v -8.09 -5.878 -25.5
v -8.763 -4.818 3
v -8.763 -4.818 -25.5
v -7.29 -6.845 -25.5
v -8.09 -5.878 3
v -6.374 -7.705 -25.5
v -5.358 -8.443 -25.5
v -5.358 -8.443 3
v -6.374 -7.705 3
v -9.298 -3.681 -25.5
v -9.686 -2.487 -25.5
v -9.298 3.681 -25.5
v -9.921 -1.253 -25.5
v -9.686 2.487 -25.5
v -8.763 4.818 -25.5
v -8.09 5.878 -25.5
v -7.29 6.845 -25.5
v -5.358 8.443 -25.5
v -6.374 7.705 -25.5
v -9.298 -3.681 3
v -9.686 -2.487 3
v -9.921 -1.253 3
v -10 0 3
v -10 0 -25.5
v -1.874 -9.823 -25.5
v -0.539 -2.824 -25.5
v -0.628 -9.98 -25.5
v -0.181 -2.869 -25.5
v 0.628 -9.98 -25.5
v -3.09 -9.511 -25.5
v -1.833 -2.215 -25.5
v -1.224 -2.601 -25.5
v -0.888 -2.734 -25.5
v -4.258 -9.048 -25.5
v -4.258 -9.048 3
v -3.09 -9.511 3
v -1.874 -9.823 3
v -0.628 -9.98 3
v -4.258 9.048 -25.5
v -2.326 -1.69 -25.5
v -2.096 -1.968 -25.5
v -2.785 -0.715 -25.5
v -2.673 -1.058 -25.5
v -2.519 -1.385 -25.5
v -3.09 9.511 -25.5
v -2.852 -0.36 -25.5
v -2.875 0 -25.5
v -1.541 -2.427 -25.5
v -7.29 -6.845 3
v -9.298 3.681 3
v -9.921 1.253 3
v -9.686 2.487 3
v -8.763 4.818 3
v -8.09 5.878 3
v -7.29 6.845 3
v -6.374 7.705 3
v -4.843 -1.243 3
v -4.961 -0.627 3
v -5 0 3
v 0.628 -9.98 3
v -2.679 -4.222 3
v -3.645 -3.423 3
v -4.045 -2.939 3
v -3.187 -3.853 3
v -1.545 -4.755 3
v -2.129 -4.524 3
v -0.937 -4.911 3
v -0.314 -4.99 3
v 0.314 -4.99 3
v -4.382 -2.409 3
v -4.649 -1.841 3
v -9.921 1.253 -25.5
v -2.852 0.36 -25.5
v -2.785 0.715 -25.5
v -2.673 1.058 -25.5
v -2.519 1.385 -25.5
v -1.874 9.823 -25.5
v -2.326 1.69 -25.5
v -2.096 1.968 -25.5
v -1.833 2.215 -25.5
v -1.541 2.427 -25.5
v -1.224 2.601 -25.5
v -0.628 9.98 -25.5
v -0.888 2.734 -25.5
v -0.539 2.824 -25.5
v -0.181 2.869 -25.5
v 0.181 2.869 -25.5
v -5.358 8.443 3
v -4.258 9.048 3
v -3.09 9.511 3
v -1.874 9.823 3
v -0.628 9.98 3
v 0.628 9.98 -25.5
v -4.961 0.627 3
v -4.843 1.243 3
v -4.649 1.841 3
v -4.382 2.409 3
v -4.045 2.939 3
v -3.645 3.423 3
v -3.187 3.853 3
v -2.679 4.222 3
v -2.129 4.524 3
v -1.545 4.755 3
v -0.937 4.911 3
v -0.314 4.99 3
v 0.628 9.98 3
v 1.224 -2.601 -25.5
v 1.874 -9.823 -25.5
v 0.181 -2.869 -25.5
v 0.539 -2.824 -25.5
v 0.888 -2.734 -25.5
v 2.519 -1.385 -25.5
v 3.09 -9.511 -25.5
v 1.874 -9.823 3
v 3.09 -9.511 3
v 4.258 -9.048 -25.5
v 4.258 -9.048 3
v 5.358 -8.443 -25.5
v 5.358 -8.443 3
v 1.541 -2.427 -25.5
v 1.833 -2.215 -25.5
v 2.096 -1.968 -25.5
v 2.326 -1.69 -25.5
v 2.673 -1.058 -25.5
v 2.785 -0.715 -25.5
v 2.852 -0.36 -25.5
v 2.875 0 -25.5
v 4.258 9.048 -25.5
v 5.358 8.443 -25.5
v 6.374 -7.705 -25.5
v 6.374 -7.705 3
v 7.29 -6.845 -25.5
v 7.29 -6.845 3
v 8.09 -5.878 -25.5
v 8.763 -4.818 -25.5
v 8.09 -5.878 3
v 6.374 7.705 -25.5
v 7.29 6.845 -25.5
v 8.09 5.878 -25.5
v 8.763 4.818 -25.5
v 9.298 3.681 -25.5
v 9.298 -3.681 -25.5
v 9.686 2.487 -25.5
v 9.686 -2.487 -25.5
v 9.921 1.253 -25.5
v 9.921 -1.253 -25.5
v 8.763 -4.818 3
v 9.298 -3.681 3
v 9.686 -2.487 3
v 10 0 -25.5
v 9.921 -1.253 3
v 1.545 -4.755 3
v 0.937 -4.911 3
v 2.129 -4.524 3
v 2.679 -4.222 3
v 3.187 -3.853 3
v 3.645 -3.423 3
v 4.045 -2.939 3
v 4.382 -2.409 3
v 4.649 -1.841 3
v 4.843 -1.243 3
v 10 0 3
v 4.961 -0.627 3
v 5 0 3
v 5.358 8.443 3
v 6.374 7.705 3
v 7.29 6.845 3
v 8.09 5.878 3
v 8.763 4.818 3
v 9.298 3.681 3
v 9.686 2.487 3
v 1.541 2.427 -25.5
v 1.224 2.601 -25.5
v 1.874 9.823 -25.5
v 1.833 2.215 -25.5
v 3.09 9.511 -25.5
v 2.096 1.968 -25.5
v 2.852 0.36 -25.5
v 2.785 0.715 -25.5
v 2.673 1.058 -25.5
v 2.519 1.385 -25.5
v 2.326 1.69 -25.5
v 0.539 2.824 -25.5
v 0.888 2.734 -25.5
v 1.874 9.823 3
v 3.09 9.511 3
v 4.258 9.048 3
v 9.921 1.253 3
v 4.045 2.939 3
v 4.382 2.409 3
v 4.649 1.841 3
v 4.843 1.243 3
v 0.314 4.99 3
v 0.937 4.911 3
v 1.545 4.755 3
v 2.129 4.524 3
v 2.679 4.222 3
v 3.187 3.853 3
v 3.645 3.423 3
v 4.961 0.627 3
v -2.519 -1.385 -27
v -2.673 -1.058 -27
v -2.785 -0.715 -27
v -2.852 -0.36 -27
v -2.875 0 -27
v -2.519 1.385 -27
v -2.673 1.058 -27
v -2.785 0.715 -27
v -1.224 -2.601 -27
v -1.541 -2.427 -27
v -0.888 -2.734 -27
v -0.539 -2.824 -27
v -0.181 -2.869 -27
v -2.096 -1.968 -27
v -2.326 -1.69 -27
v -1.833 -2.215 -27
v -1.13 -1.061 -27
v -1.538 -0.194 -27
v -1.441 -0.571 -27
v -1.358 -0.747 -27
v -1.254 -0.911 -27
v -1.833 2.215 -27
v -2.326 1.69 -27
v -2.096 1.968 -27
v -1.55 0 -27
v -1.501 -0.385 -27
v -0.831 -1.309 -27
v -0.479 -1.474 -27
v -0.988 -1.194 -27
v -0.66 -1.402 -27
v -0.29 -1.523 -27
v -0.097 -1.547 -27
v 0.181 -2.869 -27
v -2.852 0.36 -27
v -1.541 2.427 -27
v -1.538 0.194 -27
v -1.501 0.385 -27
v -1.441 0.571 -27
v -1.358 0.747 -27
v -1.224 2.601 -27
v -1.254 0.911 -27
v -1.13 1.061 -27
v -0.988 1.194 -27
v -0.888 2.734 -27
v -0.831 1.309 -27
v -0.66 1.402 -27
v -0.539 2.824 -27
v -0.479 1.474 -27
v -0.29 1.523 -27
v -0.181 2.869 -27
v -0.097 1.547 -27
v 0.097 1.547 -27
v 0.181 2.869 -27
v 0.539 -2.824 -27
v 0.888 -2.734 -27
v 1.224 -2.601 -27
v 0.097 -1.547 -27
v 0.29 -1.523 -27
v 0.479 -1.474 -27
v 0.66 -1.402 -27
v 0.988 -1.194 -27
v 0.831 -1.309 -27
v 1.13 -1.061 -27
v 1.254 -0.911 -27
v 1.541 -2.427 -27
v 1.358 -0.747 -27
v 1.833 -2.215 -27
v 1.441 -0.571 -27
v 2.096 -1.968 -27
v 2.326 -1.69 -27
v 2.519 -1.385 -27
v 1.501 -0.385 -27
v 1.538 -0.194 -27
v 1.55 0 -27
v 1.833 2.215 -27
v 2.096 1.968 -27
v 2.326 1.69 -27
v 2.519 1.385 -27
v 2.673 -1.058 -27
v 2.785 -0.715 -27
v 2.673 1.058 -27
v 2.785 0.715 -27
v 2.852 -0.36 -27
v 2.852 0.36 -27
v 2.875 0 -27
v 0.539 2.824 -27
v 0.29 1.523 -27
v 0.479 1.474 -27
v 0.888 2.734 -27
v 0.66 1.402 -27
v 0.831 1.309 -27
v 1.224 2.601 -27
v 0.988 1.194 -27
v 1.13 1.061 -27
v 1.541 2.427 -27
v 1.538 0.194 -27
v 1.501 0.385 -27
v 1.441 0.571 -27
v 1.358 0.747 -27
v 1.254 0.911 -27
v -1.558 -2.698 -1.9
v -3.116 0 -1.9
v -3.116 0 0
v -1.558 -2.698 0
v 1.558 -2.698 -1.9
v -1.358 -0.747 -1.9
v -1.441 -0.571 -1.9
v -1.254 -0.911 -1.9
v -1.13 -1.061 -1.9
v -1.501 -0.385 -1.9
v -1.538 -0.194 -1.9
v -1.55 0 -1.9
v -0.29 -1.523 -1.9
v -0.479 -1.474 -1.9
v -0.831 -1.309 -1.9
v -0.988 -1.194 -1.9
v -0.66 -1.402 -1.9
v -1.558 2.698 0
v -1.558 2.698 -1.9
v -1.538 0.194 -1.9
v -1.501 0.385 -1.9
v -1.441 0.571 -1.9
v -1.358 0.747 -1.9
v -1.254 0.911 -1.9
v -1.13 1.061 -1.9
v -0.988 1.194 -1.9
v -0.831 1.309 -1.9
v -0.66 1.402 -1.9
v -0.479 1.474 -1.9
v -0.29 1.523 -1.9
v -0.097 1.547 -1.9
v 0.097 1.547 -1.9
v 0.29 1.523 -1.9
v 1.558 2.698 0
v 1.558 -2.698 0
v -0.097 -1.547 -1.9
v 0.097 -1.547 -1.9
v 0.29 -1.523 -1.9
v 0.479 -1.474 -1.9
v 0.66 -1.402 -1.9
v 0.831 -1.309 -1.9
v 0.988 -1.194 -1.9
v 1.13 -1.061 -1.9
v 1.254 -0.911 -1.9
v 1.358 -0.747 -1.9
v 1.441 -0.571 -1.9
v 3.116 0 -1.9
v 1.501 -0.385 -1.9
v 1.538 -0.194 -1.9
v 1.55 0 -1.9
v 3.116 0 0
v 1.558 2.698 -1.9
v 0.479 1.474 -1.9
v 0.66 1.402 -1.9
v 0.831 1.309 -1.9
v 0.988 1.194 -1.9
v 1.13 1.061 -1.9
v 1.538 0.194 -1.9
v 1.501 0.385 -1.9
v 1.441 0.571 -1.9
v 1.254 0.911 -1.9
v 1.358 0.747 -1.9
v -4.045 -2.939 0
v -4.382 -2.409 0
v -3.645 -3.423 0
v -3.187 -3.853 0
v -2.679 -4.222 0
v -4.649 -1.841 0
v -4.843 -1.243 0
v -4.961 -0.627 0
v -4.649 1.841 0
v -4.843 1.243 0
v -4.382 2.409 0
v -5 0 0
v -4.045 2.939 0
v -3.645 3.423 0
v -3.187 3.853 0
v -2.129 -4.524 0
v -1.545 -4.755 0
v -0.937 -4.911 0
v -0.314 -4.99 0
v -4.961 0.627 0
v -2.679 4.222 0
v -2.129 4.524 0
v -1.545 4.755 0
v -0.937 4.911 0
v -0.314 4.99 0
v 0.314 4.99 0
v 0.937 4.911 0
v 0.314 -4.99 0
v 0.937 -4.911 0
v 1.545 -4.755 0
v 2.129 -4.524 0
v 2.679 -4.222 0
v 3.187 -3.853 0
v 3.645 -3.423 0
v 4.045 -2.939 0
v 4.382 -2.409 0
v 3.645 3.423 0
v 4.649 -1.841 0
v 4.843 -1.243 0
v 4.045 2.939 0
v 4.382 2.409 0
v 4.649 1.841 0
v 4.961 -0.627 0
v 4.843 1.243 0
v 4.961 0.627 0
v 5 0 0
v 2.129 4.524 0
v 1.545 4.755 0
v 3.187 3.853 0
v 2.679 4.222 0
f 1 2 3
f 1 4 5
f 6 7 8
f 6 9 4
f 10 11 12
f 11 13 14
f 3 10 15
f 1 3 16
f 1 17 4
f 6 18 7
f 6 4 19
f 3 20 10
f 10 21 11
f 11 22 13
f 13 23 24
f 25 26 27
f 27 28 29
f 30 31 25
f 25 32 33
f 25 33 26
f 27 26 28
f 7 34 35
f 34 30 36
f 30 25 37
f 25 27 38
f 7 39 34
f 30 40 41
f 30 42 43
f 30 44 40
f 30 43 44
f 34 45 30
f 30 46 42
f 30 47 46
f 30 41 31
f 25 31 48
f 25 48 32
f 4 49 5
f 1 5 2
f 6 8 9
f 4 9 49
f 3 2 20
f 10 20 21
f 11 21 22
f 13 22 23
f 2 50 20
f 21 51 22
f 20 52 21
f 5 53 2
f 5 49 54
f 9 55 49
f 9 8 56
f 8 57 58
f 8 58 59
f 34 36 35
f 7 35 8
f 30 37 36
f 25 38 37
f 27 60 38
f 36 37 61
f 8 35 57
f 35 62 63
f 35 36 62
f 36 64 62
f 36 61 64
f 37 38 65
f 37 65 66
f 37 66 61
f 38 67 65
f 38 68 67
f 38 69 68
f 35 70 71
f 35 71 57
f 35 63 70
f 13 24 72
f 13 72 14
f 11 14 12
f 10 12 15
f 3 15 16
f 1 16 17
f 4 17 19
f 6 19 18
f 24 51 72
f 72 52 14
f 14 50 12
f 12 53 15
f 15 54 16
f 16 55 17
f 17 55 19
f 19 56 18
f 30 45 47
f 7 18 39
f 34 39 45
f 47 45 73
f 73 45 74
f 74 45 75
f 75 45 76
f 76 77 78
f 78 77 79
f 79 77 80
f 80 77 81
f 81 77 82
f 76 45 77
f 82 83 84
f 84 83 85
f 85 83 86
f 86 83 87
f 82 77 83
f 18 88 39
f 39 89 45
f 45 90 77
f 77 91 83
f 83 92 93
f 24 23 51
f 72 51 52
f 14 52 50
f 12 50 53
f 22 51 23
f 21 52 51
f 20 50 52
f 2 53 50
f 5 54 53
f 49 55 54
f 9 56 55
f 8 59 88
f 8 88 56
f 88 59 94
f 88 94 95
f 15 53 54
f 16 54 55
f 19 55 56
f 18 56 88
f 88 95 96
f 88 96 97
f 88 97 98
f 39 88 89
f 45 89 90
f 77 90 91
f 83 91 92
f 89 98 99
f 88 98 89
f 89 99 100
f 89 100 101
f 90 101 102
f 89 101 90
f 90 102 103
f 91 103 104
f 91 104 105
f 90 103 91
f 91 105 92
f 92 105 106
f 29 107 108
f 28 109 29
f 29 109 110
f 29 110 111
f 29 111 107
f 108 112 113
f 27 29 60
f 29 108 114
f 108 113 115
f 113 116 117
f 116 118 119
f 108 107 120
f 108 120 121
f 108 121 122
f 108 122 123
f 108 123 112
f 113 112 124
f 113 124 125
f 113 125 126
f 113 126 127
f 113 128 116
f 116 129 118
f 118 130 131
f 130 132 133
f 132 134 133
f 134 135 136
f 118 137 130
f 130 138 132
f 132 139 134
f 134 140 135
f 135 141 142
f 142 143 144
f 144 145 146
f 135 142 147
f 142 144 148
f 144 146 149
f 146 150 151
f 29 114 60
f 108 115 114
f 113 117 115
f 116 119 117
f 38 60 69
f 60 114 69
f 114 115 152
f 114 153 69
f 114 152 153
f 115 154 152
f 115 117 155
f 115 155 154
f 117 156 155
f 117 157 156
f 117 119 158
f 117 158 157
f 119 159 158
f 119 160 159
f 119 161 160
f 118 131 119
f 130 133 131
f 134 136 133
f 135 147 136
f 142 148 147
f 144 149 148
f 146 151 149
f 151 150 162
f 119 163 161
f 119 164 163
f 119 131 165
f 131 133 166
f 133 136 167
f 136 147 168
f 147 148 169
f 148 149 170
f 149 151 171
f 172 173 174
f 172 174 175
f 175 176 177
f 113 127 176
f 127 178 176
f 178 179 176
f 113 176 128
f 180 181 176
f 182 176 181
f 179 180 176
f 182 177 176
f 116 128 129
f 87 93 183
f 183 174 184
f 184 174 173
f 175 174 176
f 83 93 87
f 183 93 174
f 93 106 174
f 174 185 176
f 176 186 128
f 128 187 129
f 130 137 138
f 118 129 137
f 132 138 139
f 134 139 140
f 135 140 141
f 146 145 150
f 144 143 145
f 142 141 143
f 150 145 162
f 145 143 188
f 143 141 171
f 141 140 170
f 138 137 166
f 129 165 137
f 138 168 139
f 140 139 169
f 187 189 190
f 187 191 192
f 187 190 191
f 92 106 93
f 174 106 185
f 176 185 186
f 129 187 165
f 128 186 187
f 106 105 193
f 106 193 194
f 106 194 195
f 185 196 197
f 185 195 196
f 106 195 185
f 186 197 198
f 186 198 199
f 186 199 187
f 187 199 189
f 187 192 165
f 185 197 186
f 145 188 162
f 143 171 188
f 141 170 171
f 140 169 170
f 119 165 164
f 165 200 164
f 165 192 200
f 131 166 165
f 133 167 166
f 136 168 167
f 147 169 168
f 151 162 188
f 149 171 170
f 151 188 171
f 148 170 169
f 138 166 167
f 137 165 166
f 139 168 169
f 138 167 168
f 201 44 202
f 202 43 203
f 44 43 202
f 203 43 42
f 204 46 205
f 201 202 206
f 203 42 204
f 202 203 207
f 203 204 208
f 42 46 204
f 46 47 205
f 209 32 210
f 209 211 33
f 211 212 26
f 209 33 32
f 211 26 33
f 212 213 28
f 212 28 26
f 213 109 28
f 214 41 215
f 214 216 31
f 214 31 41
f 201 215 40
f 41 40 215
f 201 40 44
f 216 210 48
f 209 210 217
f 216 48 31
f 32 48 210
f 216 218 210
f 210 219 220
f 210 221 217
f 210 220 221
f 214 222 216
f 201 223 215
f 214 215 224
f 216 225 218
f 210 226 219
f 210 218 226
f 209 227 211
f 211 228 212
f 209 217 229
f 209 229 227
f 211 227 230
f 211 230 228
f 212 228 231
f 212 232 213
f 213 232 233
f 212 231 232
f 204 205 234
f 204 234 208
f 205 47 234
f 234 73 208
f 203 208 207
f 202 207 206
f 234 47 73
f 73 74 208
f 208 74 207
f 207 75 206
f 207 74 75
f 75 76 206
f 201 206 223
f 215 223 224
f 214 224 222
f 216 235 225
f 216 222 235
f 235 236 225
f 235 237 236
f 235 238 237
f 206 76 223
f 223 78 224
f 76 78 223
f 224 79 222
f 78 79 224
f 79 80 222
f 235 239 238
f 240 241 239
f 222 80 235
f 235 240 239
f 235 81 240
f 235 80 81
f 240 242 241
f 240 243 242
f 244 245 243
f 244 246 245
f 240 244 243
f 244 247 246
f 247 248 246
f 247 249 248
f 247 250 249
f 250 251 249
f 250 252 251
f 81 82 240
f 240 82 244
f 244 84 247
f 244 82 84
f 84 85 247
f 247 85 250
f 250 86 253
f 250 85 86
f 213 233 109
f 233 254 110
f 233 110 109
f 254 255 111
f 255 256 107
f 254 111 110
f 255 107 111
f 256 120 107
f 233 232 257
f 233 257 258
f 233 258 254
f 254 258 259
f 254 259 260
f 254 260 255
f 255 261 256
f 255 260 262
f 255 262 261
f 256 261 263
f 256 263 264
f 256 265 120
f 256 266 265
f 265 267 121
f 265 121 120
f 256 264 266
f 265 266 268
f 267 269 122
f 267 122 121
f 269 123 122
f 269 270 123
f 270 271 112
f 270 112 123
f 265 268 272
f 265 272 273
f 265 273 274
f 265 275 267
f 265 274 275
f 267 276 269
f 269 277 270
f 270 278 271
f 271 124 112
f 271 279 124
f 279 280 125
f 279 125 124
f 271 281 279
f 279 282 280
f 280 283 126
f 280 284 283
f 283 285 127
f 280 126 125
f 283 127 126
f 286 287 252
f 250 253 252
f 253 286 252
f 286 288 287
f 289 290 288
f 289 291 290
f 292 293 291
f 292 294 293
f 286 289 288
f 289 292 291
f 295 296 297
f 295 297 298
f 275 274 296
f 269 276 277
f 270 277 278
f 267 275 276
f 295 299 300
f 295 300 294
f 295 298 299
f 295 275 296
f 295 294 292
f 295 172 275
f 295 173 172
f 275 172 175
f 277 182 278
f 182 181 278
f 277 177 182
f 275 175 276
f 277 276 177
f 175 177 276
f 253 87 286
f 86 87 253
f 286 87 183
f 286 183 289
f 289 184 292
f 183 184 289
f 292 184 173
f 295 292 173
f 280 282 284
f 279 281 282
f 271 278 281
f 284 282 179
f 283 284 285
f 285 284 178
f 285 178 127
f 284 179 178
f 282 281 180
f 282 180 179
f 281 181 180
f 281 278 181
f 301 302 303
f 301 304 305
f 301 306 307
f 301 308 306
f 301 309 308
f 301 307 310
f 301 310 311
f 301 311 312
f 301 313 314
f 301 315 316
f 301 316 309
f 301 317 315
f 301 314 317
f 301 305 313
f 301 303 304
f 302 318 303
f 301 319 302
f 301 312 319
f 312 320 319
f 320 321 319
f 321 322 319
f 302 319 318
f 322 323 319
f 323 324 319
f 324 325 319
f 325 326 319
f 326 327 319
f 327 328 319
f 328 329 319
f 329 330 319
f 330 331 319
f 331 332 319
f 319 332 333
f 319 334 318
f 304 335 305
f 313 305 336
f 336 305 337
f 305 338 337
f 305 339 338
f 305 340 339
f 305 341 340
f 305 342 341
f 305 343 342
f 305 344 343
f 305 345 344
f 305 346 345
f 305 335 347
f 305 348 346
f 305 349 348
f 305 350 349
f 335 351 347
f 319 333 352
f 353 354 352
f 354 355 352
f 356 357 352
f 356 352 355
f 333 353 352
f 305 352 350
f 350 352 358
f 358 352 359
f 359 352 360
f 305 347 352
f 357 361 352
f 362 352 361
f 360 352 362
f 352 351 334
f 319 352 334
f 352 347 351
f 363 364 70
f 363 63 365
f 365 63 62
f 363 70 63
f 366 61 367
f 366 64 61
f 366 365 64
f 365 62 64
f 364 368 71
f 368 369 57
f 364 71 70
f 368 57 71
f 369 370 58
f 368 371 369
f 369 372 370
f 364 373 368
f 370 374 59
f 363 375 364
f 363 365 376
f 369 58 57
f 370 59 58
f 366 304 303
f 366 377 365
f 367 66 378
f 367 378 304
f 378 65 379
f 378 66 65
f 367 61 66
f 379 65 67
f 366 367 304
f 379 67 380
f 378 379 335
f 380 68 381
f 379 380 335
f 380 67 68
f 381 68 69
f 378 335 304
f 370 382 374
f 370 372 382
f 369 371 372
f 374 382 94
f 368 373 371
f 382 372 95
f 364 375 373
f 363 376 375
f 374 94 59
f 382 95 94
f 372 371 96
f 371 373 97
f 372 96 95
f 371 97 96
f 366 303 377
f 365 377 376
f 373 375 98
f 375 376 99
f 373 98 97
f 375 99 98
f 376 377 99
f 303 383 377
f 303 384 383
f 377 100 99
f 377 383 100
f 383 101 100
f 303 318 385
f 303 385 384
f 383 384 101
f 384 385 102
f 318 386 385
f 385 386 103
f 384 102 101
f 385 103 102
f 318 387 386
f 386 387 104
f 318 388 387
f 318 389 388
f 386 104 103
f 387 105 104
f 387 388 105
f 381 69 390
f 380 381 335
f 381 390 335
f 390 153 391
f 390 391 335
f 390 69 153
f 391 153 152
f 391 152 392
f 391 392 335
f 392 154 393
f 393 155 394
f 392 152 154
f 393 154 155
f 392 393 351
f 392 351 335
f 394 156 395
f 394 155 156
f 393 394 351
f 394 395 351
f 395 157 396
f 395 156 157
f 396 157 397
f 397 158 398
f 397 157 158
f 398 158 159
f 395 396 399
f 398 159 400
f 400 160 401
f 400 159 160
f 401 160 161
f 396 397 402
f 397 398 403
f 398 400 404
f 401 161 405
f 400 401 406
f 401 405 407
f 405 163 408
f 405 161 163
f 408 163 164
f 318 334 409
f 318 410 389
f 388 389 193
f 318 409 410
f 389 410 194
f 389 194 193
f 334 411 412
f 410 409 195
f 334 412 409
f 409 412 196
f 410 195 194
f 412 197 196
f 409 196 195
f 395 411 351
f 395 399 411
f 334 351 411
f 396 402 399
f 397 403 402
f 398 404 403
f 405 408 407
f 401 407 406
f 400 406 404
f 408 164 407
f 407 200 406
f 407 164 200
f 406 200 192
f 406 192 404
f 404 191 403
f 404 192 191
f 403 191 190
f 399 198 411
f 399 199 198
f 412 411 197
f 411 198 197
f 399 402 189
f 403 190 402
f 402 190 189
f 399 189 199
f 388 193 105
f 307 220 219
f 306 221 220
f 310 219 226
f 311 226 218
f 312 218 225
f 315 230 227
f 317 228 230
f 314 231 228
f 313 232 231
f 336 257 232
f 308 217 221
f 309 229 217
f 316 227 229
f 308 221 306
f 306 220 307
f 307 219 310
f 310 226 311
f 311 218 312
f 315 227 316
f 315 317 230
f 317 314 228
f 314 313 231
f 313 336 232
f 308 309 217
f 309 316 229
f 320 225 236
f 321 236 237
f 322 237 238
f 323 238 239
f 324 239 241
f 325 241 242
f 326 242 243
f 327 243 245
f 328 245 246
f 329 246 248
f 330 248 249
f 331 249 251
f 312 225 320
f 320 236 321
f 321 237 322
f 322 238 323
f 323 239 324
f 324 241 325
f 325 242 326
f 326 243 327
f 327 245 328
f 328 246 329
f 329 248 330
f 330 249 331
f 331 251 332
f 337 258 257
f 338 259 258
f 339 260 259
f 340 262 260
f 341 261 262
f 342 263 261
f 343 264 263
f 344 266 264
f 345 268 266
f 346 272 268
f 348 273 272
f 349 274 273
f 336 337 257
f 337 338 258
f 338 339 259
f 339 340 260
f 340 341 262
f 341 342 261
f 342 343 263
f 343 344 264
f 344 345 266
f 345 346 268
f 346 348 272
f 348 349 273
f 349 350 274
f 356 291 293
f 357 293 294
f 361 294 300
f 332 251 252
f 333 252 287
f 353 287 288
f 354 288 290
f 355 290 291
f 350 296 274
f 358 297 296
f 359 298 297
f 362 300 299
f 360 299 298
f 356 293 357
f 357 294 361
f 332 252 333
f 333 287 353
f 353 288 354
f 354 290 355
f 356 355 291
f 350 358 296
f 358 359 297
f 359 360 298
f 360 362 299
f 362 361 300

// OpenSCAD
$fn = 50;


difference() {
	union() {
		translate(v = [0, 0, -25.5000000000]) {
			cylinder(h = 28.5000000000, r = 10.0000000000);
		}
		#translate(v = [0, 0, -27.0000000000]) {
			cylinder(h = 27, r = 2.8750000000);
		}
	}
	union() {
		translate(v = [0, 0, 0]) {
			rotate(a = [0, 0, 0]) {
				difference() {
					union() {
						translate(v = [0, 0, -1.9000000000]) {
							linear_extrude(height = 1.9000000000) {
								polygon(points = [[3.1158000000, 0.0000000000], [1.5579000000, 2.6983619531], [-1.5579000000, 2.6983619531], [-3.1158000000, 0.0000000000], [-1.5579000000, -2.6983619531], [1.5579000000, -2.6983619531]]);
							}
						}
					}
					union();
				}
			}
		}
		#cylinder(h = 3, r = 5.0000000000);
		#translate(v = [0, 0, -100.0000000000]) {
			cylinder(h = 200, r = 1.5500000000);
		}
	}
}
